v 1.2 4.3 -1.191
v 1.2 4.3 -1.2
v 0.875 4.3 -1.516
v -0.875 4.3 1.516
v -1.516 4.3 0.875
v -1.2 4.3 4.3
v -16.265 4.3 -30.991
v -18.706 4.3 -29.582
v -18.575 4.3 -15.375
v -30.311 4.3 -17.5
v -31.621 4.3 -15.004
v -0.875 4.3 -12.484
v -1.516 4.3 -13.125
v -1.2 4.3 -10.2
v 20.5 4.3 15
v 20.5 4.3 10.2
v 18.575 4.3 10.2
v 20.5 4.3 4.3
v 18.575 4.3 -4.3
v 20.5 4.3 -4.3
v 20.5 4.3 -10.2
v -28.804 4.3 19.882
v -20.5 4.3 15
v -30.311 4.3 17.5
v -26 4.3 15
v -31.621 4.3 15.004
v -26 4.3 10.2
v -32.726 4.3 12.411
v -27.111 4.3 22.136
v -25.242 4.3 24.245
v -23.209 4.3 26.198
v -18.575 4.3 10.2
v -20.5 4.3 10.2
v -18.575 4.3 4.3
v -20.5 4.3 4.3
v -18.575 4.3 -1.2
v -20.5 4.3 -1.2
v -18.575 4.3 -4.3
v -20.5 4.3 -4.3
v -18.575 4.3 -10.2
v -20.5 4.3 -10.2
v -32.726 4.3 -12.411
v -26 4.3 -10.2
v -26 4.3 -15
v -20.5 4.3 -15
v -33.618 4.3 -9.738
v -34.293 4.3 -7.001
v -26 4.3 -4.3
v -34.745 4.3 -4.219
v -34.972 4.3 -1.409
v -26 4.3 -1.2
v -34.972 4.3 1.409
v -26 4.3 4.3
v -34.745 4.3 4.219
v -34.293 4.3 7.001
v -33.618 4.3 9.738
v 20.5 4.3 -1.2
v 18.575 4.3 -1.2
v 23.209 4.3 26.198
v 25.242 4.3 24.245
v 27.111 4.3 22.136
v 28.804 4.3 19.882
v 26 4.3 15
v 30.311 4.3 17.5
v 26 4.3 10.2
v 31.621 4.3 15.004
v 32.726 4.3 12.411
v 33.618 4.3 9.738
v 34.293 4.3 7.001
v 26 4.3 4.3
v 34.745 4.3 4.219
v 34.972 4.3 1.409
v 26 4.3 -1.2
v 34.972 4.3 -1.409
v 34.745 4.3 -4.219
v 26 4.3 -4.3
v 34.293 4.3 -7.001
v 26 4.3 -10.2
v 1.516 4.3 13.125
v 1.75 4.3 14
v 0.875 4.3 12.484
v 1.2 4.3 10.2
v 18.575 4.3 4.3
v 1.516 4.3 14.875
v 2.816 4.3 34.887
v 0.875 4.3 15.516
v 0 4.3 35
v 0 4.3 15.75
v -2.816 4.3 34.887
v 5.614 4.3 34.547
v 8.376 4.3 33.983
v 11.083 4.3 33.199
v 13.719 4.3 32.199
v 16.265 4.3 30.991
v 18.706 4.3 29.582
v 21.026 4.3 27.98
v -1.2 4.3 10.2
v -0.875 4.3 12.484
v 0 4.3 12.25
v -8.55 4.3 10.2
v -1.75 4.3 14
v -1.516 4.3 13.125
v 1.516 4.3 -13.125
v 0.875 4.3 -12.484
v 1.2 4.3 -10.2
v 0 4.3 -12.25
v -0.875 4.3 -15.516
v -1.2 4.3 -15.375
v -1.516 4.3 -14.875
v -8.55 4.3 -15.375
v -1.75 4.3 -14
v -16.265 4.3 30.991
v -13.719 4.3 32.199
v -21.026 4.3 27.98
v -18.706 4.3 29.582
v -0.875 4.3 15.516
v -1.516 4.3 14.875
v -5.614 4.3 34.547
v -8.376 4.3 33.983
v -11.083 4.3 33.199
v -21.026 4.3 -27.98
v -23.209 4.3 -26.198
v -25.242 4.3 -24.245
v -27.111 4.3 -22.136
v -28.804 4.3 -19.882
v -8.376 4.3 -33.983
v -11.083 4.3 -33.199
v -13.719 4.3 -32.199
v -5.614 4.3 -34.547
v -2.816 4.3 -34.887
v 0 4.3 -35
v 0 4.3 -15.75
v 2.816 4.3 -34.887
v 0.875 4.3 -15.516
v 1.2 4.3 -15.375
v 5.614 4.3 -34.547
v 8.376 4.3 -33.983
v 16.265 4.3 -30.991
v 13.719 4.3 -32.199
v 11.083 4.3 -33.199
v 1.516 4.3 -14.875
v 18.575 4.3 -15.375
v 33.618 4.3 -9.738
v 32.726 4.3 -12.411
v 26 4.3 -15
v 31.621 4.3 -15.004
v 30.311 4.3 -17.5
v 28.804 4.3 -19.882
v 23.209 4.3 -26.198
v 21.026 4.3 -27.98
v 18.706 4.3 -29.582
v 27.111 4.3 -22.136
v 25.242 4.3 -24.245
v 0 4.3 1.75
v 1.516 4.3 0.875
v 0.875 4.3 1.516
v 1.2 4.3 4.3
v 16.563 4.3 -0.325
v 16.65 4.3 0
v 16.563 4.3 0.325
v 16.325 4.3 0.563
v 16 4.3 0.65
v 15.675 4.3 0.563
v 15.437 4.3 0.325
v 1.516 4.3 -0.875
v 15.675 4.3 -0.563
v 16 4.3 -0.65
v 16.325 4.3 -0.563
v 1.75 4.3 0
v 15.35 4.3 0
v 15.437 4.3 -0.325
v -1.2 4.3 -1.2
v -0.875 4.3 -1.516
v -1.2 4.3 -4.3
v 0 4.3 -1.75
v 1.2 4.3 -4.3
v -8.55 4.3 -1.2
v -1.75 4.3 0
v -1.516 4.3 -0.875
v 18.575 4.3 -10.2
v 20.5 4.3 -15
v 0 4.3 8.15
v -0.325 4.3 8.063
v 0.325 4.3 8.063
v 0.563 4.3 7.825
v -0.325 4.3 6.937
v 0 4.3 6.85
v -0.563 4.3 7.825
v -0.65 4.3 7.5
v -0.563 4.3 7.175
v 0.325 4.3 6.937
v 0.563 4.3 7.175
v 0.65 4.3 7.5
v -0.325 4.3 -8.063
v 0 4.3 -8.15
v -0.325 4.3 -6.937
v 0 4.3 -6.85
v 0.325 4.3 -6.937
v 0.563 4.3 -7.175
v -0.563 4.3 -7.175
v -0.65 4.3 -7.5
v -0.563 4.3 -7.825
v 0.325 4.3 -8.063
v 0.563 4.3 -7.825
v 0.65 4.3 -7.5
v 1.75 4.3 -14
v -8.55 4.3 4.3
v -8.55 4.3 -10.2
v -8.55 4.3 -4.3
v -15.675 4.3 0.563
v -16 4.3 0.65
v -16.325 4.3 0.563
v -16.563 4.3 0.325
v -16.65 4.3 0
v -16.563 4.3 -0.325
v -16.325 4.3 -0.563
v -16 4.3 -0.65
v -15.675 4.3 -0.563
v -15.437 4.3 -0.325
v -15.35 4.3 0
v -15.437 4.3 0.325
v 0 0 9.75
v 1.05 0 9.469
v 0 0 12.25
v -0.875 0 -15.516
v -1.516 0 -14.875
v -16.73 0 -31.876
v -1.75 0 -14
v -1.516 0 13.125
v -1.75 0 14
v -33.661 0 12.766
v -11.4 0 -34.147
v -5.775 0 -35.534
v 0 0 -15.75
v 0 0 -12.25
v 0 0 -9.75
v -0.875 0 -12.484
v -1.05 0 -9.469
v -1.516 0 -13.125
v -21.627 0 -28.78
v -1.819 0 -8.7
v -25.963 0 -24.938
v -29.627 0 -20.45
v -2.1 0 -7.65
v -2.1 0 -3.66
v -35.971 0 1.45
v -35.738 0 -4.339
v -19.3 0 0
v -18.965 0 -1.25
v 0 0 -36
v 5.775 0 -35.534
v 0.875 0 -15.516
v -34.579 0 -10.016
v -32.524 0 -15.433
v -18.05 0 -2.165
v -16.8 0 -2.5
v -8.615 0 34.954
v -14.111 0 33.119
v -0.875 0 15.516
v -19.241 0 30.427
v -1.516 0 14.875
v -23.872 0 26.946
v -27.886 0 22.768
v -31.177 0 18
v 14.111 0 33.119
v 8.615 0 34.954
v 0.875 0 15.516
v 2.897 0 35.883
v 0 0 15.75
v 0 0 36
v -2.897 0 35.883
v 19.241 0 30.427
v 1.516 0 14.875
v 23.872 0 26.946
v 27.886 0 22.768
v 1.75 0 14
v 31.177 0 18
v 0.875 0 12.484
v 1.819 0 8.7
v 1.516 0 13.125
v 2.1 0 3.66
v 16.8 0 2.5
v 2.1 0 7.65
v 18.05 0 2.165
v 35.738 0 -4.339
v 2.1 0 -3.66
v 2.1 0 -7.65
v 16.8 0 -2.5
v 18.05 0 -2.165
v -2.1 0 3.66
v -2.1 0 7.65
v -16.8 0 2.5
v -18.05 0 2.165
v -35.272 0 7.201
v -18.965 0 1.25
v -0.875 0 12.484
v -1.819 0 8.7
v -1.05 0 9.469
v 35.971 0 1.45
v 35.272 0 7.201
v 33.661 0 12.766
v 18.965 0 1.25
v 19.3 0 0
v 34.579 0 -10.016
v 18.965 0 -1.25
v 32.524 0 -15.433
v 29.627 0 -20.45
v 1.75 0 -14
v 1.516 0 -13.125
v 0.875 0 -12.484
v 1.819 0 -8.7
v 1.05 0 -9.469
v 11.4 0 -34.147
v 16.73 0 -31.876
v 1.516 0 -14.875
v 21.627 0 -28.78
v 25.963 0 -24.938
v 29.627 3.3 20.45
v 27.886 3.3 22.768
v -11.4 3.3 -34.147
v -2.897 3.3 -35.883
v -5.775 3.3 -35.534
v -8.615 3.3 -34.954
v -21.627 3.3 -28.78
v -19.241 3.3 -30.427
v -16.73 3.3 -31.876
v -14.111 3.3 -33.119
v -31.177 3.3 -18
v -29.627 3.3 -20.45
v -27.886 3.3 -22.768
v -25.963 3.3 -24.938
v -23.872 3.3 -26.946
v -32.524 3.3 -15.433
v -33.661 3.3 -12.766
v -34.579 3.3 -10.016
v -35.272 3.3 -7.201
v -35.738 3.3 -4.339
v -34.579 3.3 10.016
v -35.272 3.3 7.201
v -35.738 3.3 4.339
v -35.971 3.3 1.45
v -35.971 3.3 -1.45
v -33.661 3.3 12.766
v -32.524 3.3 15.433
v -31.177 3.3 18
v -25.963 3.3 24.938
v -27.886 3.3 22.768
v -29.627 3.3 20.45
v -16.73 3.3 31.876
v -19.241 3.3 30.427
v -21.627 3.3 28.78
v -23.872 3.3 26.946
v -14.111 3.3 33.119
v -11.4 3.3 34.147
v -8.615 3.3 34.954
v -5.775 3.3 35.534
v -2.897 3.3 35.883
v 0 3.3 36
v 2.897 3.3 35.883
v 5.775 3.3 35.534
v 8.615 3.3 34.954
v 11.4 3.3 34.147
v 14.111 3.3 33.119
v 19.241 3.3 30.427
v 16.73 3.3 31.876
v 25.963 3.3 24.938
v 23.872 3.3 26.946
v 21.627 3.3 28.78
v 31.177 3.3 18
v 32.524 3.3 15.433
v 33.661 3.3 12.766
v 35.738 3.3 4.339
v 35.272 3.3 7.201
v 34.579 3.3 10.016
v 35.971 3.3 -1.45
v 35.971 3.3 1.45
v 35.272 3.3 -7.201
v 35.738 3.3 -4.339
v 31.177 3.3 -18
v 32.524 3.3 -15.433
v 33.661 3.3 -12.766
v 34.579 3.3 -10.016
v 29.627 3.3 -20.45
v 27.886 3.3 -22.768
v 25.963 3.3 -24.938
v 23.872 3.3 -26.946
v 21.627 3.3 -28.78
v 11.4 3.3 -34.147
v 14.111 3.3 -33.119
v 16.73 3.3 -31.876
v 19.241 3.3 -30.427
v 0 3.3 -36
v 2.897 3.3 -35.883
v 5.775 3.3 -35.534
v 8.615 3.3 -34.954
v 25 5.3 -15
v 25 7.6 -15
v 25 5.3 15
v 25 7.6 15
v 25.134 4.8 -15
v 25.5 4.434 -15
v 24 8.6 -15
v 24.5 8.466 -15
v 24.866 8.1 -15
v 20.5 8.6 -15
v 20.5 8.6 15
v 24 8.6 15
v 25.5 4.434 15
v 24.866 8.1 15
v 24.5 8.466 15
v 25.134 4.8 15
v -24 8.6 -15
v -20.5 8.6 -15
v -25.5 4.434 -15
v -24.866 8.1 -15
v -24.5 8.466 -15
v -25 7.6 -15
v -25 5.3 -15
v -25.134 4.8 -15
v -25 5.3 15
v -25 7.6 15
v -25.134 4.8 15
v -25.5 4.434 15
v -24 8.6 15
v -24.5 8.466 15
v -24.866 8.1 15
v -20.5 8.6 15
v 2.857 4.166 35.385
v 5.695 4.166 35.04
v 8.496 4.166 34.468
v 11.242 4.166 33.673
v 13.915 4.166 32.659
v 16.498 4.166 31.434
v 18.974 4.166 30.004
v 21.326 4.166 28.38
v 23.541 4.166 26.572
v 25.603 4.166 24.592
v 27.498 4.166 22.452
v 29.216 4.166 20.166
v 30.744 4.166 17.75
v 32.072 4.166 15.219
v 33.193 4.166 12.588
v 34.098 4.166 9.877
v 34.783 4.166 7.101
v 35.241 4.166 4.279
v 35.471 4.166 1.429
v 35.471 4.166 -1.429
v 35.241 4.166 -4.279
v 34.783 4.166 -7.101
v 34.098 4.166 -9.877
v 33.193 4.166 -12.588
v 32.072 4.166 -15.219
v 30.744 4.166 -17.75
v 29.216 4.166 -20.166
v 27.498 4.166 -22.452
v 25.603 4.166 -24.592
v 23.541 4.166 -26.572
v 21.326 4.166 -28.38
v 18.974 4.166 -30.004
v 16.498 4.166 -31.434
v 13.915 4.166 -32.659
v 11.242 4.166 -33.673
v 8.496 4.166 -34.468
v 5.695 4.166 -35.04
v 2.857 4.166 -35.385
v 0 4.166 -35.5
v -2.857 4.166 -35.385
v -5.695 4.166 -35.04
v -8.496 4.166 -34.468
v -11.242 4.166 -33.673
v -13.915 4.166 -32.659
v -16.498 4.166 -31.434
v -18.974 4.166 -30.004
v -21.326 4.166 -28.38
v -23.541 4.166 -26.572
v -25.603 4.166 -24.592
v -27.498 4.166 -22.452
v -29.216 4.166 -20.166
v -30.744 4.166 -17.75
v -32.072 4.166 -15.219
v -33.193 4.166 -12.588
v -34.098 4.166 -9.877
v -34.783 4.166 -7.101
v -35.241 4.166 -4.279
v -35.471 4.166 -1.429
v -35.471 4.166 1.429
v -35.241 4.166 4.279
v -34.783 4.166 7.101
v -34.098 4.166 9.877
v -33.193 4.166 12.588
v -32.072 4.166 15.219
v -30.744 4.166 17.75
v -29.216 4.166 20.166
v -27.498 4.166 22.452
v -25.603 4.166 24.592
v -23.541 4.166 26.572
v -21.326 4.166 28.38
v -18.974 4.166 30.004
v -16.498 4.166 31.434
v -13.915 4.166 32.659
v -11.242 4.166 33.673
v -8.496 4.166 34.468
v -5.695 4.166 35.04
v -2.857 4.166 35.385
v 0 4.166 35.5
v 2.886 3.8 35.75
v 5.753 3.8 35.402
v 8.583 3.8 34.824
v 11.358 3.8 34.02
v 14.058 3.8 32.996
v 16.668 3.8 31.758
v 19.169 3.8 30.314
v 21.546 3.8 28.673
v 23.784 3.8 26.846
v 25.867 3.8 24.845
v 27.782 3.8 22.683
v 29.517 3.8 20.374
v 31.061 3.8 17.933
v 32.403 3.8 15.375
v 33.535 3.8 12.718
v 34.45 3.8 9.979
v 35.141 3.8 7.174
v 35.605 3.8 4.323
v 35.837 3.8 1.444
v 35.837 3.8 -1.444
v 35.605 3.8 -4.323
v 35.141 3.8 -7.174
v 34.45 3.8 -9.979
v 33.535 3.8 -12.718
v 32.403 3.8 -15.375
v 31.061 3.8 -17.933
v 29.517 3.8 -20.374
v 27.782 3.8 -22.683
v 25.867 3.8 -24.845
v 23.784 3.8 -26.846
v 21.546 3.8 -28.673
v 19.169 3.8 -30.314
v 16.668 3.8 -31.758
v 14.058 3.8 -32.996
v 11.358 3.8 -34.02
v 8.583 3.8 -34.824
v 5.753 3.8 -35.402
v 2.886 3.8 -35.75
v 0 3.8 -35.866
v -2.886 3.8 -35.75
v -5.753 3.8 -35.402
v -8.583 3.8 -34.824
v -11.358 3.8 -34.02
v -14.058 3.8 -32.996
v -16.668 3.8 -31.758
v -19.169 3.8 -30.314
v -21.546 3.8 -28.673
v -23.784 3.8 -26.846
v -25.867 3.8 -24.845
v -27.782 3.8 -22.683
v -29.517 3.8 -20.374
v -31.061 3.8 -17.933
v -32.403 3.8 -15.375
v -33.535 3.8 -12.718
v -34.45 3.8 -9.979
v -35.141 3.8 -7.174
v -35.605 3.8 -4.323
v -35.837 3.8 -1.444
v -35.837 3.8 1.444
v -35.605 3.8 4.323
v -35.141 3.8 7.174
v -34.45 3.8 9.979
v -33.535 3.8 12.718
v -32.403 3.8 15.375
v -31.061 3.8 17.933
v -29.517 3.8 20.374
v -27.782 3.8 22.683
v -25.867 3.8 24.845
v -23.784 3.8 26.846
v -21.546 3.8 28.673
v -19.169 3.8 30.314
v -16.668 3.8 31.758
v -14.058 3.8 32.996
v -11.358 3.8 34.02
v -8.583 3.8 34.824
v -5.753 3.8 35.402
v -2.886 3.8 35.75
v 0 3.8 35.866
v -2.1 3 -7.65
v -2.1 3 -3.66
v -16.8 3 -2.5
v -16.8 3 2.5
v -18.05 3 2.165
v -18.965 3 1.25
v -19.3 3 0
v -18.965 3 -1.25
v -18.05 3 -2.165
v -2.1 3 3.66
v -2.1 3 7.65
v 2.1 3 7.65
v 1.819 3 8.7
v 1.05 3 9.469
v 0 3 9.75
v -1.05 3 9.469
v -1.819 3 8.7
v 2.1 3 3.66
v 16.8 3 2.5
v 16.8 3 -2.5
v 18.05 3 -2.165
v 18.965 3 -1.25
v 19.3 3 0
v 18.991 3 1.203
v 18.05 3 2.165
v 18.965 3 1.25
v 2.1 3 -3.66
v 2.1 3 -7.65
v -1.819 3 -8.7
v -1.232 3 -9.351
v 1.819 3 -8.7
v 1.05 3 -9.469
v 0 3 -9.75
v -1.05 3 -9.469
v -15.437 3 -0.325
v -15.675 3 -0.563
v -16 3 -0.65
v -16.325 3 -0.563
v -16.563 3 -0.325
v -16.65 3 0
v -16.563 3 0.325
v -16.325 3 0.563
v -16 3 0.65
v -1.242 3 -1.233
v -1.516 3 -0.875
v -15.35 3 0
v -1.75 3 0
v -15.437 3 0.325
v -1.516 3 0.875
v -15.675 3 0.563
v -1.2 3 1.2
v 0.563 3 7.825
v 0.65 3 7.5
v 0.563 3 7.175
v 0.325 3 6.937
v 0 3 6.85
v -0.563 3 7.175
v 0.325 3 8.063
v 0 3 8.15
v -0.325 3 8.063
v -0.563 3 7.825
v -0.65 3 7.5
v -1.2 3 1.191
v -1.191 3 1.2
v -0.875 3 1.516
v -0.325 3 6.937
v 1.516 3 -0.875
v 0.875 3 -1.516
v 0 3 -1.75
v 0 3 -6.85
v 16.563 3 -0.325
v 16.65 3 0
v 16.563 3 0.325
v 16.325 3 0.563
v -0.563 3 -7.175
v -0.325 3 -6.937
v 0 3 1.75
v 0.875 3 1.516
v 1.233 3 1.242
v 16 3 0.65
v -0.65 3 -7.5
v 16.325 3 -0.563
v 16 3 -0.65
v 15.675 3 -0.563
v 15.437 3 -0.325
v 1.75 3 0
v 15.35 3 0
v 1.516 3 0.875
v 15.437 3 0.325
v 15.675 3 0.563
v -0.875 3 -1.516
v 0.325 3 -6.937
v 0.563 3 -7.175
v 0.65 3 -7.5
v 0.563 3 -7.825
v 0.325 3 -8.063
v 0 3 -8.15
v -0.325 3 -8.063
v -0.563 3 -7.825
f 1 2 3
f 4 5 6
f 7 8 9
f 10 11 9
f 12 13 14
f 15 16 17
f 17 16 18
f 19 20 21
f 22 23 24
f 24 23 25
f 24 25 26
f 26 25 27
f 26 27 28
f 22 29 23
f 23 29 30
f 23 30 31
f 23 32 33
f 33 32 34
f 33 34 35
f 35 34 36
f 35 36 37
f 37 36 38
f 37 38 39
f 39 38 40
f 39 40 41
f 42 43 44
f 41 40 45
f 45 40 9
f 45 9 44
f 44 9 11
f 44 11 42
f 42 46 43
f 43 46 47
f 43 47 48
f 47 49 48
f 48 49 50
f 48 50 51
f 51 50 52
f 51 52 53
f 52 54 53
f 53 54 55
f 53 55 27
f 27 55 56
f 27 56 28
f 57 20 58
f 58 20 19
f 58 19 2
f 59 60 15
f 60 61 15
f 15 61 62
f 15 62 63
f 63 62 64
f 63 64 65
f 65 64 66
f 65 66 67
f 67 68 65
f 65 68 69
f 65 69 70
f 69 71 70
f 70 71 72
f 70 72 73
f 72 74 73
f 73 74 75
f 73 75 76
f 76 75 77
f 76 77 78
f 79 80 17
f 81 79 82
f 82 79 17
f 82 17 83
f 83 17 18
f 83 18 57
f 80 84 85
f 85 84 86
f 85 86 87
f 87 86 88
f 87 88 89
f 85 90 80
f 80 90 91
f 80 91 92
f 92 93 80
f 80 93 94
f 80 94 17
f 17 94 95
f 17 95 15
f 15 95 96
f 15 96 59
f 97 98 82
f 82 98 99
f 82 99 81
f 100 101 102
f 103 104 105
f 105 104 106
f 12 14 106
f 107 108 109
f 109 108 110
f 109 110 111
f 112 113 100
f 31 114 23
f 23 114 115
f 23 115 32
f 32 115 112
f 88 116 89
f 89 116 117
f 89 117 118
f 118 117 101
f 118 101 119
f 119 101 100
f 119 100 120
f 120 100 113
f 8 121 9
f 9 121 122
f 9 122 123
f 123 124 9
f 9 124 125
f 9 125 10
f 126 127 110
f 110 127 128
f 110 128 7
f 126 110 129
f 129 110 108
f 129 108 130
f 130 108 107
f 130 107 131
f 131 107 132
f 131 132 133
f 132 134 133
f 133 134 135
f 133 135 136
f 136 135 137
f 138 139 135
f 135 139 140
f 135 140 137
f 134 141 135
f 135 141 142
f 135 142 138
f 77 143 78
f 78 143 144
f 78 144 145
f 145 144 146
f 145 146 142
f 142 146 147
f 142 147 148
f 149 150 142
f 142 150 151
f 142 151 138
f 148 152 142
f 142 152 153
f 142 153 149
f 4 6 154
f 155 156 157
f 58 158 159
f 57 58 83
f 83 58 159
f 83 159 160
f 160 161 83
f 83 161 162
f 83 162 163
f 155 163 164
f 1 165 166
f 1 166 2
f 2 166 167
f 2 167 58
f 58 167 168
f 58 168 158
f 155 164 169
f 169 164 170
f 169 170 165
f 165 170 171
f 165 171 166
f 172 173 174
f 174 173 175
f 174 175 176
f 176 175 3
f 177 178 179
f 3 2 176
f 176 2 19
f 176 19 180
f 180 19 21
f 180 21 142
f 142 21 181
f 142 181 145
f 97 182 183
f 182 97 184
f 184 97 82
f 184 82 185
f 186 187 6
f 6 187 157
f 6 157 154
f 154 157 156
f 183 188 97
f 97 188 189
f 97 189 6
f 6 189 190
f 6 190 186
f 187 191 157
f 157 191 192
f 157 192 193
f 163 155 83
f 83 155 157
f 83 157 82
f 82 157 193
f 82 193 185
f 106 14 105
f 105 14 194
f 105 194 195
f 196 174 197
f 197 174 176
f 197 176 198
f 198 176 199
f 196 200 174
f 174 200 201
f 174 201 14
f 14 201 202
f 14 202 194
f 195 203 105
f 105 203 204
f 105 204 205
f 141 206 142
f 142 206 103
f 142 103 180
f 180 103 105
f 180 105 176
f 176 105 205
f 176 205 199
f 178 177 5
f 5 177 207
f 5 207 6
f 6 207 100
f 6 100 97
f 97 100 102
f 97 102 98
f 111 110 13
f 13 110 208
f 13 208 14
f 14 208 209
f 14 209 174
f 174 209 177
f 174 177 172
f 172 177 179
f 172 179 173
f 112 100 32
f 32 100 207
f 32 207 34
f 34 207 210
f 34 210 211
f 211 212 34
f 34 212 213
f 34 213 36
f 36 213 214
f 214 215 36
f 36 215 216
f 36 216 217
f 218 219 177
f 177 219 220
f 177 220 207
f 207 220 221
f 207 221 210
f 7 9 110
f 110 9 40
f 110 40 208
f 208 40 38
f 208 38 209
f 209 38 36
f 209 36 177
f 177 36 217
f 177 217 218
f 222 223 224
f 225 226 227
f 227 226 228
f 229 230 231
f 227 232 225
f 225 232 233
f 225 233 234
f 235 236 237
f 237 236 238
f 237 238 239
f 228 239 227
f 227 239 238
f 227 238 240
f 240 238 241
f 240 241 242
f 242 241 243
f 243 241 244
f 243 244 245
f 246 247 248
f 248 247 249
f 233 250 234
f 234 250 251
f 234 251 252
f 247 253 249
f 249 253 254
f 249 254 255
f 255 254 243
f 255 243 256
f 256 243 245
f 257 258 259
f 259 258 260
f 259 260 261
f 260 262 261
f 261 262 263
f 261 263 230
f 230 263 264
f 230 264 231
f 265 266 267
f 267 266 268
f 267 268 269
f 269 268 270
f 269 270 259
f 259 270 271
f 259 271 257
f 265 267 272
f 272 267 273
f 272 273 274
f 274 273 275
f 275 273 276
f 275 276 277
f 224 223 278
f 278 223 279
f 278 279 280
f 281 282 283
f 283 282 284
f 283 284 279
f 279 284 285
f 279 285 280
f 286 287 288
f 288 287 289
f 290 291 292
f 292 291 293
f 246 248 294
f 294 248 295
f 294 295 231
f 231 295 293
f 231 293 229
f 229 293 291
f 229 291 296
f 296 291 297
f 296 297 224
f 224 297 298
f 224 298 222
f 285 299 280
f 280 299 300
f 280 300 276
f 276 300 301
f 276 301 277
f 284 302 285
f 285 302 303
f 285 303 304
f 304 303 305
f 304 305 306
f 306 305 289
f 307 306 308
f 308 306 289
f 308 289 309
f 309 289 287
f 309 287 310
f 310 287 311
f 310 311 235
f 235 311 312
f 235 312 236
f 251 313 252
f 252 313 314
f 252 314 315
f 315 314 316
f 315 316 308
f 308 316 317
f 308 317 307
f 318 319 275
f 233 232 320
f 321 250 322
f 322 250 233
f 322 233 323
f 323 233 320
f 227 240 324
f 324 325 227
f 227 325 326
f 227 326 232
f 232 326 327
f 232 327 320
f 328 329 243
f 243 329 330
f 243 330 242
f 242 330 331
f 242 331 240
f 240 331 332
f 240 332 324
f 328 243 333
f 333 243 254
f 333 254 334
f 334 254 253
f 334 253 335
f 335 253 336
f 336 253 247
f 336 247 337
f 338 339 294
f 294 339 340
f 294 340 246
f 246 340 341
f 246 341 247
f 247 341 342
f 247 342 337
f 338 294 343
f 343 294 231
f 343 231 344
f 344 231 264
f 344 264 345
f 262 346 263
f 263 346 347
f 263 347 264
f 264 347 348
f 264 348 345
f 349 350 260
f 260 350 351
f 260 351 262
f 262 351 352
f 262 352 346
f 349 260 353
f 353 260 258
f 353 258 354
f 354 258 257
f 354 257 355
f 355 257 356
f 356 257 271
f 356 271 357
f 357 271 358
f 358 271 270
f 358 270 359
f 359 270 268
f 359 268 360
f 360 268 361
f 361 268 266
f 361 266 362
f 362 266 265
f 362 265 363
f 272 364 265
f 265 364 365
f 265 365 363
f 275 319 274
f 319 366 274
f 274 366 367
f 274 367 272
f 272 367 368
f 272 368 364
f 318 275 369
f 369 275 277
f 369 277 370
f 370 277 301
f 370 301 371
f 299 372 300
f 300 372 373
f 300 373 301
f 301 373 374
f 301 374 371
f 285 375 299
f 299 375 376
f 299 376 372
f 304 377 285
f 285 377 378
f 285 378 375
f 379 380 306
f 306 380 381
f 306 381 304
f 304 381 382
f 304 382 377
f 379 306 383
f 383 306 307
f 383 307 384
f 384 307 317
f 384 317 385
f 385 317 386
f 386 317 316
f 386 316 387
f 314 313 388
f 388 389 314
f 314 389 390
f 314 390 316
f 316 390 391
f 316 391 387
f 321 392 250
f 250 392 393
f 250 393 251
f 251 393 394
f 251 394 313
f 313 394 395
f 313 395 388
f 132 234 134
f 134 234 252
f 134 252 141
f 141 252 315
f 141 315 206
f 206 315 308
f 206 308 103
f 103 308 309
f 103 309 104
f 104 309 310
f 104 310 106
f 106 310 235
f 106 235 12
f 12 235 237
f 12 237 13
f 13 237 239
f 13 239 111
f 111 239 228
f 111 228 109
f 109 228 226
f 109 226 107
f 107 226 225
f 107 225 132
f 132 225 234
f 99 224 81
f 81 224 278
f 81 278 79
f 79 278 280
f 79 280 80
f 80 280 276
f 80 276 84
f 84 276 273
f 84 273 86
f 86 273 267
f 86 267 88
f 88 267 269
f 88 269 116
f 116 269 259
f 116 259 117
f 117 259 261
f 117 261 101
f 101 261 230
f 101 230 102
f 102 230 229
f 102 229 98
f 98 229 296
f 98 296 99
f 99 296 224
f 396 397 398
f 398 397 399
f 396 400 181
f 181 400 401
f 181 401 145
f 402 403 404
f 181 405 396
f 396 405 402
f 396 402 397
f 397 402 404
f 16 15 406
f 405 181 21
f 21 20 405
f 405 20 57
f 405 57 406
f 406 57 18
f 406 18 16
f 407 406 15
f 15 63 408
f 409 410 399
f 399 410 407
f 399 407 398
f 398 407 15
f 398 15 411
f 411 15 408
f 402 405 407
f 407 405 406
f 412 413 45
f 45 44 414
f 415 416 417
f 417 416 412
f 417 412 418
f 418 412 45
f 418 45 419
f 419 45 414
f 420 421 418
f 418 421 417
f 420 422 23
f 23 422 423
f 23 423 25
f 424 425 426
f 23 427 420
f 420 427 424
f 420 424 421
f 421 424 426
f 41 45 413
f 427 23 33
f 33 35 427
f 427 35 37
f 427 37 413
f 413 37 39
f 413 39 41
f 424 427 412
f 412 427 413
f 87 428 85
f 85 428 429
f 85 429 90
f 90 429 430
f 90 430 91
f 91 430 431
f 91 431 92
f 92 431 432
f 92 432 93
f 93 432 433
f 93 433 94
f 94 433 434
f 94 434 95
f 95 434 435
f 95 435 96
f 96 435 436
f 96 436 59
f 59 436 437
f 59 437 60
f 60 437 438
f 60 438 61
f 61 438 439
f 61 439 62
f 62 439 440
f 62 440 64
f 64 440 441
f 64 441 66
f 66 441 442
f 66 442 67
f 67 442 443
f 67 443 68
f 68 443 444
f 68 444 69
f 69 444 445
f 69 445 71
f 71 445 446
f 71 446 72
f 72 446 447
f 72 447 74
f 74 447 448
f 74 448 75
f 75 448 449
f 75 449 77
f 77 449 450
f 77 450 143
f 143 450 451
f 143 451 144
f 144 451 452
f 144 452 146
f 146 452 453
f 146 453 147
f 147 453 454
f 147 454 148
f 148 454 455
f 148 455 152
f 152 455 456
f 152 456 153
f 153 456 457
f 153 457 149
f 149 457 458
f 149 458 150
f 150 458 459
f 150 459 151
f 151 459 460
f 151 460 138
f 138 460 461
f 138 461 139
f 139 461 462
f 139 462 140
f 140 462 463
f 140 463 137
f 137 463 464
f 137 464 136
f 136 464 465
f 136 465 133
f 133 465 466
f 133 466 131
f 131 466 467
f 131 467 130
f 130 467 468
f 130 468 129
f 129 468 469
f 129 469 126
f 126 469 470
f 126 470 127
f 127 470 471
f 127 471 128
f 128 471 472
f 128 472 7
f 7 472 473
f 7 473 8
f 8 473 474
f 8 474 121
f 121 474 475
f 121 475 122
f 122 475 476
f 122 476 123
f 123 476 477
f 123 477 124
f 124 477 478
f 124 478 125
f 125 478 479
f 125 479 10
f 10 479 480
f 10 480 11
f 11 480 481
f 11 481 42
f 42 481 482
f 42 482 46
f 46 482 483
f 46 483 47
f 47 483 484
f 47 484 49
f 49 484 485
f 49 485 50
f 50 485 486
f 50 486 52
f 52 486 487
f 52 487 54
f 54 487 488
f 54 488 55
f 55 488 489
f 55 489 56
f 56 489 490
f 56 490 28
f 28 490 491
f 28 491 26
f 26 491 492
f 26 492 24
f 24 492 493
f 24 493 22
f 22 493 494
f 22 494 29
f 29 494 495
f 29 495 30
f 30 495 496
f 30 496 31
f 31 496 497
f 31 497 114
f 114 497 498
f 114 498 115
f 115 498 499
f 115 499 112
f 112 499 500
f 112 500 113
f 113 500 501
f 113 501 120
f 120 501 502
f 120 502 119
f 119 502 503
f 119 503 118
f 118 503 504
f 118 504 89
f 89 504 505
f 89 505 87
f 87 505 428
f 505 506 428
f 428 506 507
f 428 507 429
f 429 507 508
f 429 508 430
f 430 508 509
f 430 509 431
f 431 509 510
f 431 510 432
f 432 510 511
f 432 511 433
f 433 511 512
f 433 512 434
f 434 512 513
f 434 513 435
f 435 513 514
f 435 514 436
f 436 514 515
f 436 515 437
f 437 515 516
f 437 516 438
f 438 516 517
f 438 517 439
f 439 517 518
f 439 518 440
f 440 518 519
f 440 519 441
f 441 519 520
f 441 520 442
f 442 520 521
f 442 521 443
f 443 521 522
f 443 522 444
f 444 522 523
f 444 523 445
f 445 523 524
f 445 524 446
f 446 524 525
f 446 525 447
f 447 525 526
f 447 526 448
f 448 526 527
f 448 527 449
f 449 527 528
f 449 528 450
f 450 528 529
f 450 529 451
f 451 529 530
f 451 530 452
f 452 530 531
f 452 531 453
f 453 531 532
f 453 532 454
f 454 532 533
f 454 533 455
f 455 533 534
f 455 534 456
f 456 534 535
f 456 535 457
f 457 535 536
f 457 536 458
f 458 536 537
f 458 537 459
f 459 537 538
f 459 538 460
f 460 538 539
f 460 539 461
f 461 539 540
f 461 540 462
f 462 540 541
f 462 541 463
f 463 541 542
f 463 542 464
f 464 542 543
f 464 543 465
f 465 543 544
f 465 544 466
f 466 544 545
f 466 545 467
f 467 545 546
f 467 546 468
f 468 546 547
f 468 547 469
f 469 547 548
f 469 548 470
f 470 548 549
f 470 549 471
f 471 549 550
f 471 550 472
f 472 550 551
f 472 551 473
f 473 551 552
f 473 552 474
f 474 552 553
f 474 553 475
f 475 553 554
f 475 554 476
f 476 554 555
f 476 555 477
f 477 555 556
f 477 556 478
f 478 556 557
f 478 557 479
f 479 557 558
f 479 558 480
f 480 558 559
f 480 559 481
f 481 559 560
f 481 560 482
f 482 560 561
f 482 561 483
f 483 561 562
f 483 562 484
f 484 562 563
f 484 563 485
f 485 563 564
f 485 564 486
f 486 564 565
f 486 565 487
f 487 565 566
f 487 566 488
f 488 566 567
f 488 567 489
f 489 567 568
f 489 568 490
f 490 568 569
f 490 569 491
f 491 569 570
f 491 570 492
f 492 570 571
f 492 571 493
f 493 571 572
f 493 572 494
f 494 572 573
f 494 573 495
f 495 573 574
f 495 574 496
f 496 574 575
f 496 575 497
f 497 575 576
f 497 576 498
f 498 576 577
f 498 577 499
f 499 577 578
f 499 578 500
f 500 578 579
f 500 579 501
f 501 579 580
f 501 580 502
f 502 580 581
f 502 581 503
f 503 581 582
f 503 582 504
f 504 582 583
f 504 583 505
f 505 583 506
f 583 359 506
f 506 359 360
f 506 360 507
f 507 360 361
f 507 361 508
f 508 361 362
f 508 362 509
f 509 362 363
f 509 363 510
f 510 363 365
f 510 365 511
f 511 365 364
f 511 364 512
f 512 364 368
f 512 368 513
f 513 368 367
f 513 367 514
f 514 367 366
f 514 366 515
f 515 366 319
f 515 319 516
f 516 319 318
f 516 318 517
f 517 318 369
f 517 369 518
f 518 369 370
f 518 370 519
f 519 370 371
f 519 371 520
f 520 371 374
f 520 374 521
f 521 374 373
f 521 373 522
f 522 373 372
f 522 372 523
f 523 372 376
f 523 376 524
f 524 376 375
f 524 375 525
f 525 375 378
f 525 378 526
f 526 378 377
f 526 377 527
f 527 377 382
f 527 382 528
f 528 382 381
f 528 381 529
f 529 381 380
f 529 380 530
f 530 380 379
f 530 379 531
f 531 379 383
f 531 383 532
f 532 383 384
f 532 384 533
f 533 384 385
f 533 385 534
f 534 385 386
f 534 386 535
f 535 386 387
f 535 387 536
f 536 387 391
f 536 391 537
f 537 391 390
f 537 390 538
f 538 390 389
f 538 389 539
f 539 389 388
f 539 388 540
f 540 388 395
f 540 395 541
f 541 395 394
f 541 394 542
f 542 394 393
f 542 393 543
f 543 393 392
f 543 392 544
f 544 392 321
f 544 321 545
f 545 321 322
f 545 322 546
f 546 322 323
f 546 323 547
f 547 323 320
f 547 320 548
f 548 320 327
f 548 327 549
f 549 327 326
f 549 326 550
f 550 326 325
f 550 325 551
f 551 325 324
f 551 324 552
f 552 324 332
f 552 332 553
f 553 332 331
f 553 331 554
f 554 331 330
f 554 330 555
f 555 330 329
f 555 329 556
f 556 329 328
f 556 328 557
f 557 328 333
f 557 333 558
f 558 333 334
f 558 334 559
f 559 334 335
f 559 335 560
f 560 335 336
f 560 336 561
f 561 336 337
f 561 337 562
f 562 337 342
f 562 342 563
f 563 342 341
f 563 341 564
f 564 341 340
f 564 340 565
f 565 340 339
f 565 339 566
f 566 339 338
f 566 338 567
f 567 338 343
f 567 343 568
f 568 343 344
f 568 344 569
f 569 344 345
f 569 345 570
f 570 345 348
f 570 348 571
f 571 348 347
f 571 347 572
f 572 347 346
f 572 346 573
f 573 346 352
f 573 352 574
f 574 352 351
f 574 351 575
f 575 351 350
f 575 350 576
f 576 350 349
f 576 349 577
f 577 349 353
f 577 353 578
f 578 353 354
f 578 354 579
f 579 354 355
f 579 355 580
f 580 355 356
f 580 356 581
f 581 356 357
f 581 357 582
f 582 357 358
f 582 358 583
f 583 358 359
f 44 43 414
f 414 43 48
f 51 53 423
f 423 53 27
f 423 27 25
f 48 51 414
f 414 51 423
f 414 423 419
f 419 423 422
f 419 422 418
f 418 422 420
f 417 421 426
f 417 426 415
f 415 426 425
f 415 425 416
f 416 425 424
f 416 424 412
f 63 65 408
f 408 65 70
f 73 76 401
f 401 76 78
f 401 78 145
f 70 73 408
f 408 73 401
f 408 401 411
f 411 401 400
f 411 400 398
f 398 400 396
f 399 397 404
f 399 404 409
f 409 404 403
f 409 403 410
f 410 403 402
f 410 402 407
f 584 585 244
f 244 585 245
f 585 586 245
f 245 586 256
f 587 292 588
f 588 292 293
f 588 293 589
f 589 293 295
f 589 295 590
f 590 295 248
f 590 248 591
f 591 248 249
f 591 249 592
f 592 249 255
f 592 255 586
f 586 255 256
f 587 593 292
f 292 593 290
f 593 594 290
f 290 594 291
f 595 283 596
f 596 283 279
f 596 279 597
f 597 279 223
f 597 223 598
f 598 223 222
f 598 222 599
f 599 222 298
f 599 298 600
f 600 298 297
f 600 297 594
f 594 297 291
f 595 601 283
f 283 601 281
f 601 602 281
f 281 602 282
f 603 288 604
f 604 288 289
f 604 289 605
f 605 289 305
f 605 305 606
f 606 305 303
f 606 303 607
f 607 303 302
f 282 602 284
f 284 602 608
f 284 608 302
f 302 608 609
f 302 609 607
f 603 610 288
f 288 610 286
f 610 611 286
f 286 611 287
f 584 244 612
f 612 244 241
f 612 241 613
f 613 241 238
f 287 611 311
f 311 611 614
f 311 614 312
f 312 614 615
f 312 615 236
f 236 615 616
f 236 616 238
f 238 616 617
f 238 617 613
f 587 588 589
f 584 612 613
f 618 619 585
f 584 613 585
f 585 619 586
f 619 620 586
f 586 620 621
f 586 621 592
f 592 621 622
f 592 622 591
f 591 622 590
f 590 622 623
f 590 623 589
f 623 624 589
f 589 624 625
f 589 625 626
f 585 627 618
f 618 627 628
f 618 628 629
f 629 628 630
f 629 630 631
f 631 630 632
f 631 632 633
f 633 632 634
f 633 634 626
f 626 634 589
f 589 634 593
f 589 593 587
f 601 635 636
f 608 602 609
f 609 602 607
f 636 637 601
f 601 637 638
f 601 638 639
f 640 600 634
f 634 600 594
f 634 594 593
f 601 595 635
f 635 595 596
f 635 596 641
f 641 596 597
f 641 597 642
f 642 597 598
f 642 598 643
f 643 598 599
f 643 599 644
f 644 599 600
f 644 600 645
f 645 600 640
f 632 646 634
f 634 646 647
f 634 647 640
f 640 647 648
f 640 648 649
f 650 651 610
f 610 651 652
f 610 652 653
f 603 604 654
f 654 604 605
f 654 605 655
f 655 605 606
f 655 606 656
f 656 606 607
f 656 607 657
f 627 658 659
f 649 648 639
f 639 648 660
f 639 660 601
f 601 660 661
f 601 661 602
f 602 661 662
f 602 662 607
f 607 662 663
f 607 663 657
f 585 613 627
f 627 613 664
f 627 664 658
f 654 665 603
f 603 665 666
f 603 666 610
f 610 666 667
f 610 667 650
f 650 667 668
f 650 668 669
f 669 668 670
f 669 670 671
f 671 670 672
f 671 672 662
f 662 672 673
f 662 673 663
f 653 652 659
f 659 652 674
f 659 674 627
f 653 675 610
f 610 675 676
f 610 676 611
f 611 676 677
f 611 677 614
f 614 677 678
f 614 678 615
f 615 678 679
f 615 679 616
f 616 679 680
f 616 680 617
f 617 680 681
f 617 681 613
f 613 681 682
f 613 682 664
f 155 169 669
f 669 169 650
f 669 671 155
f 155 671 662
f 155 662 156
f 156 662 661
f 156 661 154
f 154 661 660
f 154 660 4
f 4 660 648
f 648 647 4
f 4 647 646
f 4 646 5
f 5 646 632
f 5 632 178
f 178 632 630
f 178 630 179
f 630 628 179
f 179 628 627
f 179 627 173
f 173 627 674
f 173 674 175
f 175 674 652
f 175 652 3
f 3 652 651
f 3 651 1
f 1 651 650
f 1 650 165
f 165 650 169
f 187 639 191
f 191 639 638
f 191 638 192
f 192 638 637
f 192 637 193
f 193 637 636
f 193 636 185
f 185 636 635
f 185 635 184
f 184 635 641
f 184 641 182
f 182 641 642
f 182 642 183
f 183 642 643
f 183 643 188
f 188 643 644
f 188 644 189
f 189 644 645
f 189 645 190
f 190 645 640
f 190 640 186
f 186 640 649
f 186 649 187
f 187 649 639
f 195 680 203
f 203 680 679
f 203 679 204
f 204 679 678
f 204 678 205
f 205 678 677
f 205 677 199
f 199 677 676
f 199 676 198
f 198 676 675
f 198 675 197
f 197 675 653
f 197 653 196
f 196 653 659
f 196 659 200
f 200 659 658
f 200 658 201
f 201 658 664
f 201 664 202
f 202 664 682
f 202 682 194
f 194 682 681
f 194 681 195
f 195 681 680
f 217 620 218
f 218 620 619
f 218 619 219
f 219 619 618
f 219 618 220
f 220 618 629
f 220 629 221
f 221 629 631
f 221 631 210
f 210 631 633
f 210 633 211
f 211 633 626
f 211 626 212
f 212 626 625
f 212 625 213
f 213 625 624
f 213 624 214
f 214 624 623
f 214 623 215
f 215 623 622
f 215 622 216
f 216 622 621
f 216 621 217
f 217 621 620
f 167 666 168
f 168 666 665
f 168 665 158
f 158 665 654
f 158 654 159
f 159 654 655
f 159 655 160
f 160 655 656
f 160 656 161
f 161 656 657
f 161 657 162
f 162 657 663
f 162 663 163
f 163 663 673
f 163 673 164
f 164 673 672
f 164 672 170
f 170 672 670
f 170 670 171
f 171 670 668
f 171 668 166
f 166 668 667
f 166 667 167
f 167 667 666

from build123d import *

# Parameters (mm, degrees)
CROQUIS1_R              = 36
CROQUIS1_R_2            = 1.75
SALIENTE_EXTRUIR1_DEPTH = 4.3
CROQUIS2_W              = 4.5
CROQUIS2_H              = 30
SALIENTE_EXTRUIR2_DEPTH = 4.3
REDONDEO1_R             = 1
CORTAR_EXTRUIR1_DEPTH   = 3
CROQUIS4_R              = 1.75
CORTAR_EXTRUIR2_DEPTH   = 10
CROQUIS5_R              = 0.65
CORTAR_EXTRUIR3_DEPTH   = 10


with BuildPart() as part:
    # Croquis1 → Saliente-Extruir1 (new body)
    with BuildSketch(Plane(origin=(0, 0, 0), x_dir=(1, 0, 0), z_dir=(0, 1, 0))):
        with Locations(Location((0, 0, 0), (0, 0, 90))):
            Circle(CROQUIS1_R)
        with Locations(Location((0, 14, 0), (0, 0, 90))):
            Circle(CROQUIS1_R_2, mode=Mode.SUBTRACT)
        with Locations(Location((0, -14, 0), (0, 0, 90))):
            Circle(CROQUIS1_R_2, mode=Mode.SUBTRACT)
    extrude(amount=SALIENTE_EXTRUIR1_DEPTH)

    # Croquis2 → Saliente-Extruir2 (add)
    with BuildSketch(Plane(origin=(0, 4.3, 0), x_dir=(1, 0, 0), z_dir=(0, 1, 0))):
        with Locations((22.75, 0)):
            Rectangle(CROQUIS2_W, CROQUIS2_H)
        with Locations((-22.75, 0)):
            Rectangle(CROQUIS2_W, CROQUIS2_H)
    extrude(amount=SALIENTE_EXTRUIR2_DEPTH)

    # Redondeo1
    redondeo1_edges = [part.edges().sort_by_distance(p)[0] for p in [
        (25, 4.3, 0),
        (25, 8.6, 0),
        (-25, 4.3, 0),
        (-25, 8.6, 0),
        (0, 4.3, 36),
    ]]
    fillet(redondeo1_edges, radius=REDONDEO1_R)

    # Croquis3 → Cortar-Extruir1 (cut)
    with BuildSketch(Plane.XZ):
        with BuildLine():
            Line((2.1, 3.659676792), (16.8, 2.5))
            ThreePointArc((16.8, 2.5), (19.3, 0), (16.8, -2.5))
            Line((16.8, -2.5), (2.1, -3.659676792))
            Line((2.1, -3.659676792), (2.1, -7.65))
            ThreePointArc((2.1, -7.65), (0, -9.75), (-2.1, -7.65))
            Line((-2.1, -7.65), (-2.1, -3.659676792))
            Line((-2.1, -3.659676792), (-16.8, -2.5))
            ThreePointArc((-16.8, -2.5), (-19.3, 0), (-16.8, 2.5))
            Line((-16.8, 2.5), (-2.1, 3.659676792))
            Line((-2.1, 3.659676792), (-2.1, 7.65))
            ThreePointArc((-2.1, 7.65), (0, 9.75), (2.1, 7.65))
            Line((2.1, 7.65), (2.1, 3.659676792))
        make_face()
    extrude(amount=-CORTAR_EXTRUIR1_DEPTH, mode=Mode.SUBTRACT)

    # Croquis4 → Cortar-Extruir2 (cut)
    with BuildSketch(Plane.XZ):
        with Locations(Location((0, 0, 0), (0, 0, 270))):
            Circle(CROQUIS4_R)
    extrude(amount=-CORTAR_EXTRUIR2_DEPTH, mode=Mode.SUBTRACT)

    # Croquis5 → Cortar-Extruir3 (cut)
    with BuildSketch(Plane.XZ):
        with Locations(Location((16, 0, 0), (0, 0, 270))):
            Circle(CROQUIS5_R)
        with Locations(Location((-16, 0, 0), (0, 0, 270))):
            Circle(CROQUIS5_R)
        with Locations(Location((0, 7.5, 0), (0, 0, 270))):
            Circle(CROQUIS5_R)
        with Locations(Location((0, -7.5, 0), (0, 0, 270))):
            Circle(CROQUIS5_R)
    extrude(amount=-CORTAR_EXTRUIR3_DEPTH, mode=Mode.SUBTRACT)


solid = part.part
